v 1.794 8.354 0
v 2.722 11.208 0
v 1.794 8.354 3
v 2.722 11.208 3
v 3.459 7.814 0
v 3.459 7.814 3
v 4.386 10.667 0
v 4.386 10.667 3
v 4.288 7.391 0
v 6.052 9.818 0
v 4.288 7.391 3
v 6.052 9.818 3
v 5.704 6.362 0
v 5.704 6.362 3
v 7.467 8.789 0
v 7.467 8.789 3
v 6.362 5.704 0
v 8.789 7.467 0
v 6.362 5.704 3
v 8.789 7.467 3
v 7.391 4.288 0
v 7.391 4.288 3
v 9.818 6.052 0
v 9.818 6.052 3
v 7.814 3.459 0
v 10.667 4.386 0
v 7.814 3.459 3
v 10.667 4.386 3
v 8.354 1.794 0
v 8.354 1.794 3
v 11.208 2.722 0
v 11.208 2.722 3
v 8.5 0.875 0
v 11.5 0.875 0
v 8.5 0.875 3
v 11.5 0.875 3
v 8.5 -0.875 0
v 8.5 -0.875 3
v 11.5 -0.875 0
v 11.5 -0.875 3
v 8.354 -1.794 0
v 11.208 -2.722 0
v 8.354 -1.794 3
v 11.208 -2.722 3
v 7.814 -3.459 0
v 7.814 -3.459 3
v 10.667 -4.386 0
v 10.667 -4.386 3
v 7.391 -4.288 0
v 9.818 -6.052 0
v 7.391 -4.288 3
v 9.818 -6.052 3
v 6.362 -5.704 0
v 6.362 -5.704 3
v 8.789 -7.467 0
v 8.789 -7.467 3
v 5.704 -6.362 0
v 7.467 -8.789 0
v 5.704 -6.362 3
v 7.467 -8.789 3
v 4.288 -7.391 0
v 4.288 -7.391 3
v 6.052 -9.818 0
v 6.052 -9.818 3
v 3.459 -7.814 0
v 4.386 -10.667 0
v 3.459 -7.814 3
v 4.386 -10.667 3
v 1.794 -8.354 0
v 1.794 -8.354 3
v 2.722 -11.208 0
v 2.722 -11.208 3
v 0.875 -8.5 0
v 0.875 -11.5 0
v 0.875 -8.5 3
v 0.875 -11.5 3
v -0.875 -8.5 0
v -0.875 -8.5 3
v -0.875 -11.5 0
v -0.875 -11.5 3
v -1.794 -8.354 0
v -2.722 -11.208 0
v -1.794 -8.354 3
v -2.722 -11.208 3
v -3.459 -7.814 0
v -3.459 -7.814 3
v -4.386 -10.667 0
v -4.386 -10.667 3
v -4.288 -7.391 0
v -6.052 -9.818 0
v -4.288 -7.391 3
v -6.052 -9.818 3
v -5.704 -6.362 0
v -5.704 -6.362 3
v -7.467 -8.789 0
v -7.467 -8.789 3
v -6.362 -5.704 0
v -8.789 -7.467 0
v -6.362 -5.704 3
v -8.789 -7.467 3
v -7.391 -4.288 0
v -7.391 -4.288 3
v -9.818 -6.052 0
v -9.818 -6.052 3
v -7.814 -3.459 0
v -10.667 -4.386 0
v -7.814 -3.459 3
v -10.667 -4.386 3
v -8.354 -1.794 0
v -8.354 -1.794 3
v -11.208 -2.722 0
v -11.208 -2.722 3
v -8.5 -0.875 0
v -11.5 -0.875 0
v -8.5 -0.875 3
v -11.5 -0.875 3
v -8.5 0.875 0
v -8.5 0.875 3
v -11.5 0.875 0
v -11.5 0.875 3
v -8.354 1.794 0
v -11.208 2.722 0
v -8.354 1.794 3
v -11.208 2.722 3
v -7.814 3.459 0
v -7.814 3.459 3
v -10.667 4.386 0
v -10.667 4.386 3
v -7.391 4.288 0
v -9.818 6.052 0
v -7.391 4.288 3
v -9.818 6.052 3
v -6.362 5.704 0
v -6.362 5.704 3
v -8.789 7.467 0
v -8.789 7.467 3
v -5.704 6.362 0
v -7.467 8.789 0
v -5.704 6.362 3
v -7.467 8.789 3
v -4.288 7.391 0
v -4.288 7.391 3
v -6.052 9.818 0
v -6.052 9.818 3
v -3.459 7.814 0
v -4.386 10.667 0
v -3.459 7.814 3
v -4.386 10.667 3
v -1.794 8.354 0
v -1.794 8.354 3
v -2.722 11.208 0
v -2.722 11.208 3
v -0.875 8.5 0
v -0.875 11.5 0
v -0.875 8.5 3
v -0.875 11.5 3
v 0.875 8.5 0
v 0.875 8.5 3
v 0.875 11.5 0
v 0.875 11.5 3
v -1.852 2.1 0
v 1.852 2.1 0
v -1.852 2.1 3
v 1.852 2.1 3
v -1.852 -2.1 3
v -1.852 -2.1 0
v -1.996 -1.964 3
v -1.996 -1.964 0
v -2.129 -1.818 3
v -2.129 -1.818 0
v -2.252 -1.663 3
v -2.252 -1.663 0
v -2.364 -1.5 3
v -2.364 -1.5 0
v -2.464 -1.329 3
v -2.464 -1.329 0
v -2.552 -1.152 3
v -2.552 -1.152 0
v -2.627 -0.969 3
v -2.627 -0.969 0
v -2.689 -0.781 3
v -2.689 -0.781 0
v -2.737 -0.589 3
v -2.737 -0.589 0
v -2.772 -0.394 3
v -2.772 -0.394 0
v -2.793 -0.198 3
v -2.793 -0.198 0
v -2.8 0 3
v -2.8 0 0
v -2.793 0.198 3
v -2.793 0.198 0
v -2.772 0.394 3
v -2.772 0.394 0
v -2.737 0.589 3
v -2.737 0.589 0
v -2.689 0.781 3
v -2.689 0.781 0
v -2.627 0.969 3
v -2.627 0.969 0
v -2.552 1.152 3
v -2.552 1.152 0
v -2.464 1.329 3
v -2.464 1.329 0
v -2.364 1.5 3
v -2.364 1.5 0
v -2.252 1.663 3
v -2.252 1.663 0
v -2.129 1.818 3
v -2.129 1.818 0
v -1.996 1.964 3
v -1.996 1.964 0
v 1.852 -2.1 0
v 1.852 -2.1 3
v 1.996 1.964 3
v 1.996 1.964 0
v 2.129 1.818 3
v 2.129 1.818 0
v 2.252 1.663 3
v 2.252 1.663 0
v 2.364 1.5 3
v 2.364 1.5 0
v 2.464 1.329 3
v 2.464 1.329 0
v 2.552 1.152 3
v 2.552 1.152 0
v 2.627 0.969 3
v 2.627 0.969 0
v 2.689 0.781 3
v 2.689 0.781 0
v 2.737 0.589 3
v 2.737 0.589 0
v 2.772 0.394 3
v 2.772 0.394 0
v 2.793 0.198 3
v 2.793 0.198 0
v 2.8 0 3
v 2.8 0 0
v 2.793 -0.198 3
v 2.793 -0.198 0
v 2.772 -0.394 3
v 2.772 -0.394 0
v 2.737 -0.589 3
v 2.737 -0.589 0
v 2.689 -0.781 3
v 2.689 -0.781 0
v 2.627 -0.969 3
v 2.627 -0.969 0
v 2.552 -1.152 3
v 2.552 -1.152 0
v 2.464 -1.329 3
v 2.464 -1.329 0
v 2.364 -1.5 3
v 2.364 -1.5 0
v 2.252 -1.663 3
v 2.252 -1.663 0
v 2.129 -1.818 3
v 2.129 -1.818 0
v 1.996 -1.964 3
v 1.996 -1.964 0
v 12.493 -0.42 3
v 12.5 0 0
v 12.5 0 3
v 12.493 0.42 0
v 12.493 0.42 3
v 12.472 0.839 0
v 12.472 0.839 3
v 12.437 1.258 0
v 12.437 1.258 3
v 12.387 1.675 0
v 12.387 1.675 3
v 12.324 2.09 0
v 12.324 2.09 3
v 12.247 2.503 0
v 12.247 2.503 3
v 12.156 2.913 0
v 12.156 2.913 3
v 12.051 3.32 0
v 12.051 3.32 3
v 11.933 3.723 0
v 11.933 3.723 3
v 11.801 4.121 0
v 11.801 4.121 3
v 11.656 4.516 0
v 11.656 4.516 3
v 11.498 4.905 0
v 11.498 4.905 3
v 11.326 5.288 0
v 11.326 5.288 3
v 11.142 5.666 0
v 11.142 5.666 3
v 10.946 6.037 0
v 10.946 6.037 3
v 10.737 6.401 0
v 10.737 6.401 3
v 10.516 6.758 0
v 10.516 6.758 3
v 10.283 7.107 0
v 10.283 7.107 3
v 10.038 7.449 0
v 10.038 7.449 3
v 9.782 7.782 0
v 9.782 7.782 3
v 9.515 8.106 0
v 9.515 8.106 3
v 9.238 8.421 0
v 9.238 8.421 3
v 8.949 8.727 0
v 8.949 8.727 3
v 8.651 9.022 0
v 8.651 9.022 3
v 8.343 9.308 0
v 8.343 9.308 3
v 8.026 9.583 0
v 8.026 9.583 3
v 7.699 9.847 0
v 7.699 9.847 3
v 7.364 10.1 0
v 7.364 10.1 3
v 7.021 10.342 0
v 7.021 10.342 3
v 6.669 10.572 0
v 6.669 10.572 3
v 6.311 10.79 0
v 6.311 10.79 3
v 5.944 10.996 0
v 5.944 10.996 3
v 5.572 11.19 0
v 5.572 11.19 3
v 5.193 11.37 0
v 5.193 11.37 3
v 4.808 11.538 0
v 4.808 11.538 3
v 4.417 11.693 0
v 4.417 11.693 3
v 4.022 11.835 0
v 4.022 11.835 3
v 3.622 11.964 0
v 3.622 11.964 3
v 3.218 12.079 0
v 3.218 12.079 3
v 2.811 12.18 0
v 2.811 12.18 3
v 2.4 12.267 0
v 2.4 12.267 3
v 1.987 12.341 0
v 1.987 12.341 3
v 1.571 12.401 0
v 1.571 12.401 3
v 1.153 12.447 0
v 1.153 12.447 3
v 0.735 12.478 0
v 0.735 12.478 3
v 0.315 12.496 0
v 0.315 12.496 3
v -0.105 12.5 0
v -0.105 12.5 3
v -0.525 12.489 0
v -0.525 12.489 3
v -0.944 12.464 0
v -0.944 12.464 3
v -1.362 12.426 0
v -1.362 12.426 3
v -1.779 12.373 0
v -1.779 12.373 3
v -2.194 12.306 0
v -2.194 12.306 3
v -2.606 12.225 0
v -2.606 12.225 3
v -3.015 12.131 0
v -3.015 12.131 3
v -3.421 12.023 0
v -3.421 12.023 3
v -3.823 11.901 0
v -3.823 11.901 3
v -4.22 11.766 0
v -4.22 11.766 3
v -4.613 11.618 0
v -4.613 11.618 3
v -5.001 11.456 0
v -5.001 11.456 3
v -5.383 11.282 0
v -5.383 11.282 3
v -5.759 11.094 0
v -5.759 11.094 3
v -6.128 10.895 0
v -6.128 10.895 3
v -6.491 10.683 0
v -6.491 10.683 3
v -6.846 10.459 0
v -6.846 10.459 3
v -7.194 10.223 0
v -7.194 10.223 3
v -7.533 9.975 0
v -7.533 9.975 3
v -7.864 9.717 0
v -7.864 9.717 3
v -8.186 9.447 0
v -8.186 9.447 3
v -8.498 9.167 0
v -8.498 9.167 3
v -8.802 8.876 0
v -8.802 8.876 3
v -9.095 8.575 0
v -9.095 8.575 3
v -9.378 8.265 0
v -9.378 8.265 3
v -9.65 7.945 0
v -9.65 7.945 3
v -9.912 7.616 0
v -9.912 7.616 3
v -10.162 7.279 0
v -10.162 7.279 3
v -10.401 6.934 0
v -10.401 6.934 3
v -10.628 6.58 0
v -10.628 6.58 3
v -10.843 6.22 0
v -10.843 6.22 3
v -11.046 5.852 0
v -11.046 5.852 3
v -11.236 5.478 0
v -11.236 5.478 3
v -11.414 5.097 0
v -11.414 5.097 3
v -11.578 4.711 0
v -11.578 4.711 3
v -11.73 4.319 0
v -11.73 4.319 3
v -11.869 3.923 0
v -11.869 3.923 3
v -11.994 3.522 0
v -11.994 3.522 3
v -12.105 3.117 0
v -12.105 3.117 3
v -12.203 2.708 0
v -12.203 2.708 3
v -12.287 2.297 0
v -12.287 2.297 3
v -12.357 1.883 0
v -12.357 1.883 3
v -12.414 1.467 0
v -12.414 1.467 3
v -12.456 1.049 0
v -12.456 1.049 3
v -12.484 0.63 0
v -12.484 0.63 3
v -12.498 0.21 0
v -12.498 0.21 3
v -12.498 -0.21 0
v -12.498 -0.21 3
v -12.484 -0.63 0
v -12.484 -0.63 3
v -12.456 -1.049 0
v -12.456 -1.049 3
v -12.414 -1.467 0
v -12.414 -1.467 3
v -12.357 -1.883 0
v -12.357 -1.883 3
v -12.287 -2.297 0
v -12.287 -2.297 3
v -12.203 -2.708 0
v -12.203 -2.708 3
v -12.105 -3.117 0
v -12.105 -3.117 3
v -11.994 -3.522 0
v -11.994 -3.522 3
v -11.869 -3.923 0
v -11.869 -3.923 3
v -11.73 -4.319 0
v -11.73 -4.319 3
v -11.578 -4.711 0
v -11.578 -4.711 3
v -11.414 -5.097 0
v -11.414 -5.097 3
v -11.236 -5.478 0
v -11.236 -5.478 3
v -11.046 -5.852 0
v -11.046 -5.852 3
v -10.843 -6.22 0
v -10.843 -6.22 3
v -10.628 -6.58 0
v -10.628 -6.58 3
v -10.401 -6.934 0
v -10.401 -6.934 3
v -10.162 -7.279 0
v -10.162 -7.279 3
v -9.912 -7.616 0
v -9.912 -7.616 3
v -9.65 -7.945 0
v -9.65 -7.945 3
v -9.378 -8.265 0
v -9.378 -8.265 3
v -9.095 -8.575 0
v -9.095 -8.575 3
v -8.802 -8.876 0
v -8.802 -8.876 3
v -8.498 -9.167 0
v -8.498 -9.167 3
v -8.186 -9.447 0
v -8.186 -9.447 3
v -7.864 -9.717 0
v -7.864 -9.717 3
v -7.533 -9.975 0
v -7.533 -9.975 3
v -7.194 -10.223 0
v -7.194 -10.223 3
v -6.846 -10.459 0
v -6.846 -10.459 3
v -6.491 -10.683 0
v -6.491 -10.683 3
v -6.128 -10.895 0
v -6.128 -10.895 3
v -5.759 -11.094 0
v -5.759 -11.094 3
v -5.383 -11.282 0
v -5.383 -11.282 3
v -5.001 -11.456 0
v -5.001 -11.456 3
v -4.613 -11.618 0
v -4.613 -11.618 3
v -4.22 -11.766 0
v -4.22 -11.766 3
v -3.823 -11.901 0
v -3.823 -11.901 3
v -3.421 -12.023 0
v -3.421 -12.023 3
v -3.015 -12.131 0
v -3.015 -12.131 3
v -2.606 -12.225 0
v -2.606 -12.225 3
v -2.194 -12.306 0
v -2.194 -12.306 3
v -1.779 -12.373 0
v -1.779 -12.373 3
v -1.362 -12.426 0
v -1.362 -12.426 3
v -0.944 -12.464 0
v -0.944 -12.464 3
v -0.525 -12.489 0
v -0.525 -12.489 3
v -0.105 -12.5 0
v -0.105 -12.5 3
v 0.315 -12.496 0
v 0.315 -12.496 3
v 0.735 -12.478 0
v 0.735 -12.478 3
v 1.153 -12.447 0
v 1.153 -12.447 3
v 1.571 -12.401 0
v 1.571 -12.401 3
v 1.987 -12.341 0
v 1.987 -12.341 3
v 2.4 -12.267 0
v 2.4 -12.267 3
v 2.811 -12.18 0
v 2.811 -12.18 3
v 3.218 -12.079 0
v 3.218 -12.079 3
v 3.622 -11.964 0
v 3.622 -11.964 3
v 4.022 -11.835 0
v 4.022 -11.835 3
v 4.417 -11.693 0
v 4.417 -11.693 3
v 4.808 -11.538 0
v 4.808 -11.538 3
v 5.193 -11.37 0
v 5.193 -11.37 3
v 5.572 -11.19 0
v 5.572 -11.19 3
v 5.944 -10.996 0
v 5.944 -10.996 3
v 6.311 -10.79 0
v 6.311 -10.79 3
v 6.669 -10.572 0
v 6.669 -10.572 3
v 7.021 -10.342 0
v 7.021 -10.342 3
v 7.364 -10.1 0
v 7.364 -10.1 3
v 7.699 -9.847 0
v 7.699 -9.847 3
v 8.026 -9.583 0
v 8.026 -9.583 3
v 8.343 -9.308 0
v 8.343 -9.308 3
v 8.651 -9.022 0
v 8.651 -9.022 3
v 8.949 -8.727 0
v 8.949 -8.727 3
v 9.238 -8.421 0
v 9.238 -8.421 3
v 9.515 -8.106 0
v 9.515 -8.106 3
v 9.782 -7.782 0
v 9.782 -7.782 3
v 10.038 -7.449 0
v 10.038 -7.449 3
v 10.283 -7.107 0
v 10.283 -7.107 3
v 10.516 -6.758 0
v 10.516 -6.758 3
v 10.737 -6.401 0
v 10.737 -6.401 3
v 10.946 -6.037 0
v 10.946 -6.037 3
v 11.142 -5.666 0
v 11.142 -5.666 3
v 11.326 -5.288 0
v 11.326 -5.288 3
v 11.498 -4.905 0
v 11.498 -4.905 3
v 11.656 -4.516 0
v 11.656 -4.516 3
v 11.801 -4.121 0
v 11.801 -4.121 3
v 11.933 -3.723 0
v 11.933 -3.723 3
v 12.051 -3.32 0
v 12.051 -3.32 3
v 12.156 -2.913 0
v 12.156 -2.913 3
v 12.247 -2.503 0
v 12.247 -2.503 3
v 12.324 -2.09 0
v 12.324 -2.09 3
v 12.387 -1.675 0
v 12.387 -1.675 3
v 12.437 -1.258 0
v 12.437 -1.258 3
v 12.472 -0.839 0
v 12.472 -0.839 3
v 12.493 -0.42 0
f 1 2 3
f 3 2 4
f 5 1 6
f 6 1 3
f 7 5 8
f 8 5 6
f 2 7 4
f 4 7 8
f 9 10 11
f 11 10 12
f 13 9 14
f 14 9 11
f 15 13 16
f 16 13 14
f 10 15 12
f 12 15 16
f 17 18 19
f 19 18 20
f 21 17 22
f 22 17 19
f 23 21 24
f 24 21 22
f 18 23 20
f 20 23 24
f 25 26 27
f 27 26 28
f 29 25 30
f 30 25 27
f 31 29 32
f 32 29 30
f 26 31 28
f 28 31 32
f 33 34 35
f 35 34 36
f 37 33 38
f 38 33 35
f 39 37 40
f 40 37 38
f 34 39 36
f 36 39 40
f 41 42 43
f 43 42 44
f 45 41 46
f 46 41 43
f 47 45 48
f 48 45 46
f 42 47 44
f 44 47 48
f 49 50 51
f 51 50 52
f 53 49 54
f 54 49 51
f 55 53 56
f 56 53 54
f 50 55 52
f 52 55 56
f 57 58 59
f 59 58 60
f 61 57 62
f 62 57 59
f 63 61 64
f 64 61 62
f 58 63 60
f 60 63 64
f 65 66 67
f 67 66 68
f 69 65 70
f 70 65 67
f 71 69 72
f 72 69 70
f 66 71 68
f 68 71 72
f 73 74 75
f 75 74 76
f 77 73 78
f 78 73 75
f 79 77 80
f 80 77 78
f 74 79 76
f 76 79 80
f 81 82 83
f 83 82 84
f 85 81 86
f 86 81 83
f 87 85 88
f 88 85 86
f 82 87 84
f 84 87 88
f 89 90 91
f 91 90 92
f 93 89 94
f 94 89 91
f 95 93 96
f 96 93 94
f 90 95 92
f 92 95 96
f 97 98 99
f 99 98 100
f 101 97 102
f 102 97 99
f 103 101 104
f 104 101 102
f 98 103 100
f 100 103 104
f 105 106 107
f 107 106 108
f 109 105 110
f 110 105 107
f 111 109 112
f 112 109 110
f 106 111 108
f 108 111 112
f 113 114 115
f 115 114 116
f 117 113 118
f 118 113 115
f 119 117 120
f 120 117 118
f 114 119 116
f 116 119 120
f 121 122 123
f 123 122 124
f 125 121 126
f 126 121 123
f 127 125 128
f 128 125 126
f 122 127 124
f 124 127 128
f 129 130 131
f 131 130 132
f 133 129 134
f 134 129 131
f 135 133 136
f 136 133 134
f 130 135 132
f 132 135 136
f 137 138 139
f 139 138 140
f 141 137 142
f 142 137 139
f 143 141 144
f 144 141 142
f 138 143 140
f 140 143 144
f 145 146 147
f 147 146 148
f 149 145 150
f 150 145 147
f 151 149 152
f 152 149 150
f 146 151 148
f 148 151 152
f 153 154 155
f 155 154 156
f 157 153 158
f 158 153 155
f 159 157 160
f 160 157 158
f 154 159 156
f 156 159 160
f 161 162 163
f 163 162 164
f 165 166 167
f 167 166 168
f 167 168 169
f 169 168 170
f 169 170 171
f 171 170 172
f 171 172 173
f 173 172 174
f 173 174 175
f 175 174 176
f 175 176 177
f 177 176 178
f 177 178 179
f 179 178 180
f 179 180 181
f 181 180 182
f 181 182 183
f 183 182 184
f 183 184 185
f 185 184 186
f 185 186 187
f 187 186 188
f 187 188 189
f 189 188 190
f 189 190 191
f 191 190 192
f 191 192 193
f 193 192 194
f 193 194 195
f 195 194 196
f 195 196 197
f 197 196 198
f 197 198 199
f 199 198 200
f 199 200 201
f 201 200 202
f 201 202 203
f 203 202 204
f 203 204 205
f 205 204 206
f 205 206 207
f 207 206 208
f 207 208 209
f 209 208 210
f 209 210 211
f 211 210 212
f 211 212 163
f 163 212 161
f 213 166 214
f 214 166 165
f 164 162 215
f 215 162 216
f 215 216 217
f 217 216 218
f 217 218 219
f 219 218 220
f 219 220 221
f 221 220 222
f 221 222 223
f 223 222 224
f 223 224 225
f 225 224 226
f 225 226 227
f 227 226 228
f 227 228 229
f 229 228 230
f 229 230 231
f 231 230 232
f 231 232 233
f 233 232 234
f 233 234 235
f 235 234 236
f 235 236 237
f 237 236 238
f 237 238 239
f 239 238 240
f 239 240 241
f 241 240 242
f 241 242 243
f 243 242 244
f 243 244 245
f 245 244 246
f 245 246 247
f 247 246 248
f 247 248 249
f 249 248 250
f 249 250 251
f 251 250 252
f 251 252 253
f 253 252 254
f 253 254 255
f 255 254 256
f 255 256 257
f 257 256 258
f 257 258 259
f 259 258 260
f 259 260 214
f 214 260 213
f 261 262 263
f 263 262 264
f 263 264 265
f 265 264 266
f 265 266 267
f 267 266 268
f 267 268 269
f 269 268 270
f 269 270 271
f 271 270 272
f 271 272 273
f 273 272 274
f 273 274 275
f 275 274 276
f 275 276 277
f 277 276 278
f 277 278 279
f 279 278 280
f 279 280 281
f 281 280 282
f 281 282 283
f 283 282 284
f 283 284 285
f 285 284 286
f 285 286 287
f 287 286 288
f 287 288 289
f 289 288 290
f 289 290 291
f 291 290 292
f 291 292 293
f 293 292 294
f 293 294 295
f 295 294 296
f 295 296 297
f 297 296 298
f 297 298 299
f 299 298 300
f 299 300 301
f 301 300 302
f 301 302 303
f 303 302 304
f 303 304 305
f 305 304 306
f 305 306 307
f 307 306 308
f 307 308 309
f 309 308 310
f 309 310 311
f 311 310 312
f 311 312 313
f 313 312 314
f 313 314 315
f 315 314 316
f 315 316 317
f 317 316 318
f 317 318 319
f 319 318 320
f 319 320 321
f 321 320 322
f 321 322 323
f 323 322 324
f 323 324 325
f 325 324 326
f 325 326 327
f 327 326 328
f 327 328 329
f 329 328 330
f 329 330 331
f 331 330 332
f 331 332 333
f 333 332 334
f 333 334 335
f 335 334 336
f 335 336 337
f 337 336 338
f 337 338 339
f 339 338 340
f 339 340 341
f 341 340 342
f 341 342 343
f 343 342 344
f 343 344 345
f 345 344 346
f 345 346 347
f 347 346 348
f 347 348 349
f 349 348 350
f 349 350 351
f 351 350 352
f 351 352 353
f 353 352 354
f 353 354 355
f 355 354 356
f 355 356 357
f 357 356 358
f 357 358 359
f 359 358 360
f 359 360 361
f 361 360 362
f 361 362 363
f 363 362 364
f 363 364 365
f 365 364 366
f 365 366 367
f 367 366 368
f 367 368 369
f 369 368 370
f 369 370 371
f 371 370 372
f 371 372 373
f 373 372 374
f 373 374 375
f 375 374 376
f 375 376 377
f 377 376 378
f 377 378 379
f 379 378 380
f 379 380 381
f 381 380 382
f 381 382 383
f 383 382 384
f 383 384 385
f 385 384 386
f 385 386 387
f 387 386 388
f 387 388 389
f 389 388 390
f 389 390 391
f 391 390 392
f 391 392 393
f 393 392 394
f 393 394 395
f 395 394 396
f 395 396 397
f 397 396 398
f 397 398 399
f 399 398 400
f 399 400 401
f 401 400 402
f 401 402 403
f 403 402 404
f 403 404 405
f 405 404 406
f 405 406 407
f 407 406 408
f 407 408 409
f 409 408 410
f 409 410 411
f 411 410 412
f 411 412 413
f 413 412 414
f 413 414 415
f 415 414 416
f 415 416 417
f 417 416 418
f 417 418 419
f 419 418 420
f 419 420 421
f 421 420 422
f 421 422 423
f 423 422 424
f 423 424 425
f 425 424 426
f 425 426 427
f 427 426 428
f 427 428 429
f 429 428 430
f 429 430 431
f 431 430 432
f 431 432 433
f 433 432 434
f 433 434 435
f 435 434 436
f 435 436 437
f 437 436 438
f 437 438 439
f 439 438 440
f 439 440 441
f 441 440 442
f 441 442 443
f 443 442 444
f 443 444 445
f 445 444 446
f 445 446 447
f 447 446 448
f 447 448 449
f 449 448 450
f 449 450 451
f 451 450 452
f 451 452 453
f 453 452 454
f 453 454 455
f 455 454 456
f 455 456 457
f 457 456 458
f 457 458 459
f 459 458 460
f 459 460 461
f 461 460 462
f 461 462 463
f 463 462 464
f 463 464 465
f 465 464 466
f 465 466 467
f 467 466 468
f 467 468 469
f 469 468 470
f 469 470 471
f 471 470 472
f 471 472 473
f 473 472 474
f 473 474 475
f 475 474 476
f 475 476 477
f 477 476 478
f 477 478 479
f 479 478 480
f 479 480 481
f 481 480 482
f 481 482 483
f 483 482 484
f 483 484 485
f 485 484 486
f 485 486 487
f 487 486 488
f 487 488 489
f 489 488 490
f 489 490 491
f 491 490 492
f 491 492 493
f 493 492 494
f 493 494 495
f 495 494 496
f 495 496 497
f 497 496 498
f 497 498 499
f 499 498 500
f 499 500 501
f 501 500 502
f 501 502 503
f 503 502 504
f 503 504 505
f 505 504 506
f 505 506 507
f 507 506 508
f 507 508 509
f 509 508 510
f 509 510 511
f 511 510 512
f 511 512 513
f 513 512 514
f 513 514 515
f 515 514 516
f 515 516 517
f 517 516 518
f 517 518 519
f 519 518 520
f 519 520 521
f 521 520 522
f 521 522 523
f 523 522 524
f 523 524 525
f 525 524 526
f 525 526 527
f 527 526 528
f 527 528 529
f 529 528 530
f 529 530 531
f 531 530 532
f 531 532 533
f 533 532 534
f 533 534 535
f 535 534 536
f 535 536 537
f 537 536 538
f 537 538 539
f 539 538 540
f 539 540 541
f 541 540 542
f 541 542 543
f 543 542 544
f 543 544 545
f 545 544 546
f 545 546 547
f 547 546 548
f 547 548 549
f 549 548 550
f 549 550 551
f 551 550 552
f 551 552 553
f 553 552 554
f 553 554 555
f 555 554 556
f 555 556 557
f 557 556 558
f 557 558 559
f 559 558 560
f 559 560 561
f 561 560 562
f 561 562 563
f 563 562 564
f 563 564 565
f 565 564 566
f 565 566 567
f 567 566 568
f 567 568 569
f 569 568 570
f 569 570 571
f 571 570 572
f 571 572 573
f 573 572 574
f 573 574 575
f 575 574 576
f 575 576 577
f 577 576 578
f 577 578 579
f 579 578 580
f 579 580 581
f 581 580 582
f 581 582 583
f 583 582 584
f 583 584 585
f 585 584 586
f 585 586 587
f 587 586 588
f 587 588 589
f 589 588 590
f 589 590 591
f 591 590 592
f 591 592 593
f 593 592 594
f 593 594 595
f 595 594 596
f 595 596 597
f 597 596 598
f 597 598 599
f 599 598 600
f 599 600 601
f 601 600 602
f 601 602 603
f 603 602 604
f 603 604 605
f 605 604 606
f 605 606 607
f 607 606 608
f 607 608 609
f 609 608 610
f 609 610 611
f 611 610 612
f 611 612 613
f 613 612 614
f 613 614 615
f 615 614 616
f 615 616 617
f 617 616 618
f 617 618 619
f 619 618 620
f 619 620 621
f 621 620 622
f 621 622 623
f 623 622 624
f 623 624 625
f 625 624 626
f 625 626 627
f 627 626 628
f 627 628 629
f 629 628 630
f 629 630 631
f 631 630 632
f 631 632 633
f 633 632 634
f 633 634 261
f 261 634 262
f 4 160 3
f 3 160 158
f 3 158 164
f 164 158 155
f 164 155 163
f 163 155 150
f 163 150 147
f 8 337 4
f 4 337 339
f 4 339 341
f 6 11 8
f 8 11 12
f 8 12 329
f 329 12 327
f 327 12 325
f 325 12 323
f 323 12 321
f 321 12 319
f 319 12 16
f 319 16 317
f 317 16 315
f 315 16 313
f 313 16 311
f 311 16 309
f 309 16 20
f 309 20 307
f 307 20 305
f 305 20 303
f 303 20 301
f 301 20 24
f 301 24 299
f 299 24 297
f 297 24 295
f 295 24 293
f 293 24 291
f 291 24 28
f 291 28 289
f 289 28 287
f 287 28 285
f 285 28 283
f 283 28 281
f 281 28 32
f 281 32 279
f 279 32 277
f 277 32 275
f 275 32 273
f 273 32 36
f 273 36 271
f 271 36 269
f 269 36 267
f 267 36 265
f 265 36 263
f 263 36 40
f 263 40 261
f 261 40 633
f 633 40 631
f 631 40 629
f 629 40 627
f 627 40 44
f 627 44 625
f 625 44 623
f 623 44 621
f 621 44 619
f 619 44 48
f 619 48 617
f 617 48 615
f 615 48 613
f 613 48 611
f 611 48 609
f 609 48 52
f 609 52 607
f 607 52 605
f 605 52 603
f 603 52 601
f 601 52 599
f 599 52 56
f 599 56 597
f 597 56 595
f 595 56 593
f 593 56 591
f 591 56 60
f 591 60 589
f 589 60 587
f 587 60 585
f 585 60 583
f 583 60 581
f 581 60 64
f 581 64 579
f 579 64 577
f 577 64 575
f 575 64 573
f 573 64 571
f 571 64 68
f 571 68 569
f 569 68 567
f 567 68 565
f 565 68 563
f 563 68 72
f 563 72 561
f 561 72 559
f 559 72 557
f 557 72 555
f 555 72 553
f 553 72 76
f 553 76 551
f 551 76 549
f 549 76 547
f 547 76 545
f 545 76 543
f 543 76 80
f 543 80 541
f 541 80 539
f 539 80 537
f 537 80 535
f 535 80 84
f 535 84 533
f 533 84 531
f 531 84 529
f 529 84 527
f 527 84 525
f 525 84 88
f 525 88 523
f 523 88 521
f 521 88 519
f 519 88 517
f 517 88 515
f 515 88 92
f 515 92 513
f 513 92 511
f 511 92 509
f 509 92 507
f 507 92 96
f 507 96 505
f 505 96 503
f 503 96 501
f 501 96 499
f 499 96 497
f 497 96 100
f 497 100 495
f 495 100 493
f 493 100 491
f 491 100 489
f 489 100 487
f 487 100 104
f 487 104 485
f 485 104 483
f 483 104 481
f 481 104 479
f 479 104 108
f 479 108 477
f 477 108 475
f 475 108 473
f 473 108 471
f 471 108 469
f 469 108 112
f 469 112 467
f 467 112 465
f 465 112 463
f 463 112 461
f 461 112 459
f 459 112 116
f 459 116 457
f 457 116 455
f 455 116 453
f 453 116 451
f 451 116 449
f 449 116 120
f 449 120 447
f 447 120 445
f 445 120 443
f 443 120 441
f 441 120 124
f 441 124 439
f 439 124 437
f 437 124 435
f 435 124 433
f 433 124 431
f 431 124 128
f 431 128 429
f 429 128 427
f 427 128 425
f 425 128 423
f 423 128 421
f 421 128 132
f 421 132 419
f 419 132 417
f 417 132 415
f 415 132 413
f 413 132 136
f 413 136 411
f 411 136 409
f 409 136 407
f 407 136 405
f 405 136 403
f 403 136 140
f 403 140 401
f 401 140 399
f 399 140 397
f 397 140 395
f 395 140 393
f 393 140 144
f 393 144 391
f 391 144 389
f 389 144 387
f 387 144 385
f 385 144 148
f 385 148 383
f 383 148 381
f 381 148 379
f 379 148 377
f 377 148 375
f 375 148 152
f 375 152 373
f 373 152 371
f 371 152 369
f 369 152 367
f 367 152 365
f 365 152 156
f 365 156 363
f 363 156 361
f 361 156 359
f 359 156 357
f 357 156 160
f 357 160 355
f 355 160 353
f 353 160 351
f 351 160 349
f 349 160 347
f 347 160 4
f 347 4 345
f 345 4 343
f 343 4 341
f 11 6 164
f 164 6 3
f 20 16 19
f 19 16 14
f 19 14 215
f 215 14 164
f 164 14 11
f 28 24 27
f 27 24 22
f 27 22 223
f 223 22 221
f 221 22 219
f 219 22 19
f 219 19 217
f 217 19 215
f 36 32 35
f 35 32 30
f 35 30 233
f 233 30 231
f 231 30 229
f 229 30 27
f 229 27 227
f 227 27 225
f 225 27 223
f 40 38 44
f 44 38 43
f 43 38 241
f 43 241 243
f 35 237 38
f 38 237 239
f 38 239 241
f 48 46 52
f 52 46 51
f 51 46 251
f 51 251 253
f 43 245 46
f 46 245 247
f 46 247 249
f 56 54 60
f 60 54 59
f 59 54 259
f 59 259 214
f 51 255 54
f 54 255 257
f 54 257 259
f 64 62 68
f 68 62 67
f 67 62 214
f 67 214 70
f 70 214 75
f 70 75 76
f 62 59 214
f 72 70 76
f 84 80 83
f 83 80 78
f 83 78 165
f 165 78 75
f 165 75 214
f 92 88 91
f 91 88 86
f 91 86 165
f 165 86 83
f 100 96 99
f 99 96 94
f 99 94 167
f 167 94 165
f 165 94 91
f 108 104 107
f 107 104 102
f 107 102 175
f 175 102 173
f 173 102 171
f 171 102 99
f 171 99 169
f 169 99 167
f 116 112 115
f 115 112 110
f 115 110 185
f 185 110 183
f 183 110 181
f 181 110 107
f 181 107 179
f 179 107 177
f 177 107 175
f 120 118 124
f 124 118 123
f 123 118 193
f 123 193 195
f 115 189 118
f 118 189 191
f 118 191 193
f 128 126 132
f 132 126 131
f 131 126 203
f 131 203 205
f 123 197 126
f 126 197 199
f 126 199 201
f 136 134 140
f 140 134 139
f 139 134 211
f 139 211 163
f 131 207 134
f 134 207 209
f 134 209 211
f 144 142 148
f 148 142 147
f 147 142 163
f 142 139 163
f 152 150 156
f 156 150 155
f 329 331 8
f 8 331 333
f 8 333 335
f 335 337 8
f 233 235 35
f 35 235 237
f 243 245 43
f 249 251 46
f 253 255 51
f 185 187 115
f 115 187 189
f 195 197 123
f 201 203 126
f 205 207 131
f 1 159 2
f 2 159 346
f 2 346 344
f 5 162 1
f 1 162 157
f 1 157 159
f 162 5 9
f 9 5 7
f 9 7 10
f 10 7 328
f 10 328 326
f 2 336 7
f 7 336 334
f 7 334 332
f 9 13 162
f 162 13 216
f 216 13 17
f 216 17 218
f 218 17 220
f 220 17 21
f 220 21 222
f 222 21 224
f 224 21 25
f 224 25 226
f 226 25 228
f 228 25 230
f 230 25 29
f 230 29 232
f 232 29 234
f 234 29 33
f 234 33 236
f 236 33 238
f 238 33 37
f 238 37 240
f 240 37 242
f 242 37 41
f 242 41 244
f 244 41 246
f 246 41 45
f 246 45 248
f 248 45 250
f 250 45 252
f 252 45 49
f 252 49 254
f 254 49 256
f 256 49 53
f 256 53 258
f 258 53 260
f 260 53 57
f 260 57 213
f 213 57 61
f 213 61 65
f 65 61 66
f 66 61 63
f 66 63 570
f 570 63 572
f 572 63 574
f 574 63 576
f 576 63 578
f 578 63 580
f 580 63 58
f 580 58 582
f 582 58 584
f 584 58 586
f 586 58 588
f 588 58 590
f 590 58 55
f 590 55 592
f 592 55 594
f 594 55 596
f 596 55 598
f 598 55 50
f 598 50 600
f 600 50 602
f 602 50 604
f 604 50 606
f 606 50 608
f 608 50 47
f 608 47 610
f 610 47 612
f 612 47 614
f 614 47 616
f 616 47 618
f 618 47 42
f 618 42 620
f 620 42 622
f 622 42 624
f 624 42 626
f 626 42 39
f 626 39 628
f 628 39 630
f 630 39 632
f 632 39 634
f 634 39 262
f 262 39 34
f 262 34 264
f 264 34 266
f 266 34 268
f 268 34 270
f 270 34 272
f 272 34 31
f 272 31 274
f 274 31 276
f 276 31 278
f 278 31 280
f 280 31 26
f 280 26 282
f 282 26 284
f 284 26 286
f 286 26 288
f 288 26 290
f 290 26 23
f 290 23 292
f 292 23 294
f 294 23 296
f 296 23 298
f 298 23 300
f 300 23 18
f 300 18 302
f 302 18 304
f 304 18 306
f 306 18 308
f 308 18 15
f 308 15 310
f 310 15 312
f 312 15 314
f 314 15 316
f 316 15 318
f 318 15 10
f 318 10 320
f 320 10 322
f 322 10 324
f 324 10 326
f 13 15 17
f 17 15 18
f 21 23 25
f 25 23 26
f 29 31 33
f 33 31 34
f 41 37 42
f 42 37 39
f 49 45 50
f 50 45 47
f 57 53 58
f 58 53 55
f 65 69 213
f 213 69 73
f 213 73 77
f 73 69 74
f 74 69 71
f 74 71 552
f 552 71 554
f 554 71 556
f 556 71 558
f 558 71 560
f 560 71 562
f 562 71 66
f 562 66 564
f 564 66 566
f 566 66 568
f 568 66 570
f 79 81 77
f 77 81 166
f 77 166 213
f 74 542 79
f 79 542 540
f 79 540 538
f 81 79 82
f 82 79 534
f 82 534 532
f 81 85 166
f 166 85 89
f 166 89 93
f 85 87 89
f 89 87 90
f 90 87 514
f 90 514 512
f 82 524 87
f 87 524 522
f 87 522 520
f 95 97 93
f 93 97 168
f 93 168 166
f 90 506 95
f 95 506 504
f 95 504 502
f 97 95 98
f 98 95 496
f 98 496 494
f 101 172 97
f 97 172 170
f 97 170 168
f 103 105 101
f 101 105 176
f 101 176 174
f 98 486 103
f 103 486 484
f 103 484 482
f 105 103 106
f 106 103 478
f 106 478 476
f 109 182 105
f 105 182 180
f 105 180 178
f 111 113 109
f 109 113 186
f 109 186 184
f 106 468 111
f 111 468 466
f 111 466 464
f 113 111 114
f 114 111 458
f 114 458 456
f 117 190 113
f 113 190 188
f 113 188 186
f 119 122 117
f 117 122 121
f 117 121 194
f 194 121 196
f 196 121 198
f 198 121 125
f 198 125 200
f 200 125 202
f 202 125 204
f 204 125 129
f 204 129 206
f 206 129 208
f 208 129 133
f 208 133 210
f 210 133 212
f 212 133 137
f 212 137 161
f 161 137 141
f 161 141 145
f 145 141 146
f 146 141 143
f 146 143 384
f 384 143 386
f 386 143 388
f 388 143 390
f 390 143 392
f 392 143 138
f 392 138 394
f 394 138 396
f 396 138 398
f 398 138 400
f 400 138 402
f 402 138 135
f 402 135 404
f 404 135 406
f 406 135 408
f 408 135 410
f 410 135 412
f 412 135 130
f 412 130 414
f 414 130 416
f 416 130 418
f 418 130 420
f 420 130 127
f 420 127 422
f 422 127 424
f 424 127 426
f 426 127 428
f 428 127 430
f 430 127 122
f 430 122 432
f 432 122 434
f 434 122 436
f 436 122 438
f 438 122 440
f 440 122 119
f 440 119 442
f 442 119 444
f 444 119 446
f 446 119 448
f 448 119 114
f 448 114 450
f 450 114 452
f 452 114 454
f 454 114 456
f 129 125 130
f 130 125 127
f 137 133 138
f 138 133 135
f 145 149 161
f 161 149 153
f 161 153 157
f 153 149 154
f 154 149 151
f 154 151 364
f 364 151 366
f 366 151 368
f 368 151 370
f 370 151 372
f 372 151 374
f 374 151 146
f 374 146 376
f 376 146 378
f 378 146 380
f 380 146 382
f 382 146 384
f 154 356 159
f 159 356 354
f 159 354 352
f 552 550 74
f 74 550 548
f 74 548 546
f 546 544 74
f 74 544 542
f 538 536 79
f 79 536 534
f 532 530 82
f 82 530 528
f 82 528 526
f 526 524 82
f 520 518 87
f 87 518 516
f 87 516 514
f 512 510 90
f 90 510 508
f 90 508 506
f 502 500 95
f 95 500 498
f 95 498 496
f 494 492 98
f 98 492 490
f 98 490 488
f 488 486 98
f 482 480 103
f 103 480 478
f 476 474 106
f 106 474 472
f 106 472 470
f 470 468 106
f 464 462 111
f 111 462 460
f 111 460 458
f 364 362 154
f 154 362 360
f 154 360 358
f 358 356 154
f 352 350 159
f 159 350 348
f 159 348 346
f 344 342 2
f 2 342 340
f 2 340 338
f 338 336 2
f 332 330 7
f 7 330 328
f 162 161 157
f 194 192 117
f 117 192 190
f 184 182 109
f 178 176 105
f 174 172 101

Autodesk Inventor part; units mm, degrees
ref_plane "YZ Plane" through (0, 0, 0) normal (1, 0, 0) x (0, 1, 0)
ref_plane "XZ Plane" through (0, 0, 0) normal (0, 1, 0) x (-1, 0, 0)
ref_plane "XY Plane" through (0, 0, 0) normal (0, 0, 1) x (1, 0, 0)
sketch "Boceto1" plane through (0, 0, 0) normal (0, 0, 1) x (1, 0, 0)
  circle A0 centre (0, 0) radius 12.5
  circle A1 centre (0, 0) radius 2.8
  line L0 (-1.852, 2.1) -> (1.852, 2.1)
  line L1 (-1.852, -2.1) -> (1.852, -2.1)
  dimension "d0" = 25
  dimension "d1" = 5.6
  dimension "d2" = 2.1
  dimension "d3" = 2.1
extrude "Extrusión1" add sketch "Boceto1" along normal blind 3 contours A0 | L0 A1 | A1 L1
sketch "Boceto2" plane through (0, 0, 3) normal (0, 0, 1) x (1, 0, 0)
  line L0 (-0.875, 11.5) -> (0.875, 11.5)
  line L1 (0.875, 11.5) -> (0.875, 8.5)
  line L2 (0.875, 8.5) -> (-0.875, 8.5)
  line L3 (-0.875, 8.5) -> (-0.875, 11.5)
  point P0 (0, 0)
  point P1 (0, 11.5)
  dimension "d6" = 3
  dimension "d7" = 1.75
  dimension "d8" = 8.5
extrude "Extrusión2" cut sketch "Boceto2" against normal through all
pattern_circular "Patrón circular1" count 20 over 360 about axis through (0, 0, -10) along (0, 0, 1) of "Extrusión2"
properties part number "Disco_encoder"
